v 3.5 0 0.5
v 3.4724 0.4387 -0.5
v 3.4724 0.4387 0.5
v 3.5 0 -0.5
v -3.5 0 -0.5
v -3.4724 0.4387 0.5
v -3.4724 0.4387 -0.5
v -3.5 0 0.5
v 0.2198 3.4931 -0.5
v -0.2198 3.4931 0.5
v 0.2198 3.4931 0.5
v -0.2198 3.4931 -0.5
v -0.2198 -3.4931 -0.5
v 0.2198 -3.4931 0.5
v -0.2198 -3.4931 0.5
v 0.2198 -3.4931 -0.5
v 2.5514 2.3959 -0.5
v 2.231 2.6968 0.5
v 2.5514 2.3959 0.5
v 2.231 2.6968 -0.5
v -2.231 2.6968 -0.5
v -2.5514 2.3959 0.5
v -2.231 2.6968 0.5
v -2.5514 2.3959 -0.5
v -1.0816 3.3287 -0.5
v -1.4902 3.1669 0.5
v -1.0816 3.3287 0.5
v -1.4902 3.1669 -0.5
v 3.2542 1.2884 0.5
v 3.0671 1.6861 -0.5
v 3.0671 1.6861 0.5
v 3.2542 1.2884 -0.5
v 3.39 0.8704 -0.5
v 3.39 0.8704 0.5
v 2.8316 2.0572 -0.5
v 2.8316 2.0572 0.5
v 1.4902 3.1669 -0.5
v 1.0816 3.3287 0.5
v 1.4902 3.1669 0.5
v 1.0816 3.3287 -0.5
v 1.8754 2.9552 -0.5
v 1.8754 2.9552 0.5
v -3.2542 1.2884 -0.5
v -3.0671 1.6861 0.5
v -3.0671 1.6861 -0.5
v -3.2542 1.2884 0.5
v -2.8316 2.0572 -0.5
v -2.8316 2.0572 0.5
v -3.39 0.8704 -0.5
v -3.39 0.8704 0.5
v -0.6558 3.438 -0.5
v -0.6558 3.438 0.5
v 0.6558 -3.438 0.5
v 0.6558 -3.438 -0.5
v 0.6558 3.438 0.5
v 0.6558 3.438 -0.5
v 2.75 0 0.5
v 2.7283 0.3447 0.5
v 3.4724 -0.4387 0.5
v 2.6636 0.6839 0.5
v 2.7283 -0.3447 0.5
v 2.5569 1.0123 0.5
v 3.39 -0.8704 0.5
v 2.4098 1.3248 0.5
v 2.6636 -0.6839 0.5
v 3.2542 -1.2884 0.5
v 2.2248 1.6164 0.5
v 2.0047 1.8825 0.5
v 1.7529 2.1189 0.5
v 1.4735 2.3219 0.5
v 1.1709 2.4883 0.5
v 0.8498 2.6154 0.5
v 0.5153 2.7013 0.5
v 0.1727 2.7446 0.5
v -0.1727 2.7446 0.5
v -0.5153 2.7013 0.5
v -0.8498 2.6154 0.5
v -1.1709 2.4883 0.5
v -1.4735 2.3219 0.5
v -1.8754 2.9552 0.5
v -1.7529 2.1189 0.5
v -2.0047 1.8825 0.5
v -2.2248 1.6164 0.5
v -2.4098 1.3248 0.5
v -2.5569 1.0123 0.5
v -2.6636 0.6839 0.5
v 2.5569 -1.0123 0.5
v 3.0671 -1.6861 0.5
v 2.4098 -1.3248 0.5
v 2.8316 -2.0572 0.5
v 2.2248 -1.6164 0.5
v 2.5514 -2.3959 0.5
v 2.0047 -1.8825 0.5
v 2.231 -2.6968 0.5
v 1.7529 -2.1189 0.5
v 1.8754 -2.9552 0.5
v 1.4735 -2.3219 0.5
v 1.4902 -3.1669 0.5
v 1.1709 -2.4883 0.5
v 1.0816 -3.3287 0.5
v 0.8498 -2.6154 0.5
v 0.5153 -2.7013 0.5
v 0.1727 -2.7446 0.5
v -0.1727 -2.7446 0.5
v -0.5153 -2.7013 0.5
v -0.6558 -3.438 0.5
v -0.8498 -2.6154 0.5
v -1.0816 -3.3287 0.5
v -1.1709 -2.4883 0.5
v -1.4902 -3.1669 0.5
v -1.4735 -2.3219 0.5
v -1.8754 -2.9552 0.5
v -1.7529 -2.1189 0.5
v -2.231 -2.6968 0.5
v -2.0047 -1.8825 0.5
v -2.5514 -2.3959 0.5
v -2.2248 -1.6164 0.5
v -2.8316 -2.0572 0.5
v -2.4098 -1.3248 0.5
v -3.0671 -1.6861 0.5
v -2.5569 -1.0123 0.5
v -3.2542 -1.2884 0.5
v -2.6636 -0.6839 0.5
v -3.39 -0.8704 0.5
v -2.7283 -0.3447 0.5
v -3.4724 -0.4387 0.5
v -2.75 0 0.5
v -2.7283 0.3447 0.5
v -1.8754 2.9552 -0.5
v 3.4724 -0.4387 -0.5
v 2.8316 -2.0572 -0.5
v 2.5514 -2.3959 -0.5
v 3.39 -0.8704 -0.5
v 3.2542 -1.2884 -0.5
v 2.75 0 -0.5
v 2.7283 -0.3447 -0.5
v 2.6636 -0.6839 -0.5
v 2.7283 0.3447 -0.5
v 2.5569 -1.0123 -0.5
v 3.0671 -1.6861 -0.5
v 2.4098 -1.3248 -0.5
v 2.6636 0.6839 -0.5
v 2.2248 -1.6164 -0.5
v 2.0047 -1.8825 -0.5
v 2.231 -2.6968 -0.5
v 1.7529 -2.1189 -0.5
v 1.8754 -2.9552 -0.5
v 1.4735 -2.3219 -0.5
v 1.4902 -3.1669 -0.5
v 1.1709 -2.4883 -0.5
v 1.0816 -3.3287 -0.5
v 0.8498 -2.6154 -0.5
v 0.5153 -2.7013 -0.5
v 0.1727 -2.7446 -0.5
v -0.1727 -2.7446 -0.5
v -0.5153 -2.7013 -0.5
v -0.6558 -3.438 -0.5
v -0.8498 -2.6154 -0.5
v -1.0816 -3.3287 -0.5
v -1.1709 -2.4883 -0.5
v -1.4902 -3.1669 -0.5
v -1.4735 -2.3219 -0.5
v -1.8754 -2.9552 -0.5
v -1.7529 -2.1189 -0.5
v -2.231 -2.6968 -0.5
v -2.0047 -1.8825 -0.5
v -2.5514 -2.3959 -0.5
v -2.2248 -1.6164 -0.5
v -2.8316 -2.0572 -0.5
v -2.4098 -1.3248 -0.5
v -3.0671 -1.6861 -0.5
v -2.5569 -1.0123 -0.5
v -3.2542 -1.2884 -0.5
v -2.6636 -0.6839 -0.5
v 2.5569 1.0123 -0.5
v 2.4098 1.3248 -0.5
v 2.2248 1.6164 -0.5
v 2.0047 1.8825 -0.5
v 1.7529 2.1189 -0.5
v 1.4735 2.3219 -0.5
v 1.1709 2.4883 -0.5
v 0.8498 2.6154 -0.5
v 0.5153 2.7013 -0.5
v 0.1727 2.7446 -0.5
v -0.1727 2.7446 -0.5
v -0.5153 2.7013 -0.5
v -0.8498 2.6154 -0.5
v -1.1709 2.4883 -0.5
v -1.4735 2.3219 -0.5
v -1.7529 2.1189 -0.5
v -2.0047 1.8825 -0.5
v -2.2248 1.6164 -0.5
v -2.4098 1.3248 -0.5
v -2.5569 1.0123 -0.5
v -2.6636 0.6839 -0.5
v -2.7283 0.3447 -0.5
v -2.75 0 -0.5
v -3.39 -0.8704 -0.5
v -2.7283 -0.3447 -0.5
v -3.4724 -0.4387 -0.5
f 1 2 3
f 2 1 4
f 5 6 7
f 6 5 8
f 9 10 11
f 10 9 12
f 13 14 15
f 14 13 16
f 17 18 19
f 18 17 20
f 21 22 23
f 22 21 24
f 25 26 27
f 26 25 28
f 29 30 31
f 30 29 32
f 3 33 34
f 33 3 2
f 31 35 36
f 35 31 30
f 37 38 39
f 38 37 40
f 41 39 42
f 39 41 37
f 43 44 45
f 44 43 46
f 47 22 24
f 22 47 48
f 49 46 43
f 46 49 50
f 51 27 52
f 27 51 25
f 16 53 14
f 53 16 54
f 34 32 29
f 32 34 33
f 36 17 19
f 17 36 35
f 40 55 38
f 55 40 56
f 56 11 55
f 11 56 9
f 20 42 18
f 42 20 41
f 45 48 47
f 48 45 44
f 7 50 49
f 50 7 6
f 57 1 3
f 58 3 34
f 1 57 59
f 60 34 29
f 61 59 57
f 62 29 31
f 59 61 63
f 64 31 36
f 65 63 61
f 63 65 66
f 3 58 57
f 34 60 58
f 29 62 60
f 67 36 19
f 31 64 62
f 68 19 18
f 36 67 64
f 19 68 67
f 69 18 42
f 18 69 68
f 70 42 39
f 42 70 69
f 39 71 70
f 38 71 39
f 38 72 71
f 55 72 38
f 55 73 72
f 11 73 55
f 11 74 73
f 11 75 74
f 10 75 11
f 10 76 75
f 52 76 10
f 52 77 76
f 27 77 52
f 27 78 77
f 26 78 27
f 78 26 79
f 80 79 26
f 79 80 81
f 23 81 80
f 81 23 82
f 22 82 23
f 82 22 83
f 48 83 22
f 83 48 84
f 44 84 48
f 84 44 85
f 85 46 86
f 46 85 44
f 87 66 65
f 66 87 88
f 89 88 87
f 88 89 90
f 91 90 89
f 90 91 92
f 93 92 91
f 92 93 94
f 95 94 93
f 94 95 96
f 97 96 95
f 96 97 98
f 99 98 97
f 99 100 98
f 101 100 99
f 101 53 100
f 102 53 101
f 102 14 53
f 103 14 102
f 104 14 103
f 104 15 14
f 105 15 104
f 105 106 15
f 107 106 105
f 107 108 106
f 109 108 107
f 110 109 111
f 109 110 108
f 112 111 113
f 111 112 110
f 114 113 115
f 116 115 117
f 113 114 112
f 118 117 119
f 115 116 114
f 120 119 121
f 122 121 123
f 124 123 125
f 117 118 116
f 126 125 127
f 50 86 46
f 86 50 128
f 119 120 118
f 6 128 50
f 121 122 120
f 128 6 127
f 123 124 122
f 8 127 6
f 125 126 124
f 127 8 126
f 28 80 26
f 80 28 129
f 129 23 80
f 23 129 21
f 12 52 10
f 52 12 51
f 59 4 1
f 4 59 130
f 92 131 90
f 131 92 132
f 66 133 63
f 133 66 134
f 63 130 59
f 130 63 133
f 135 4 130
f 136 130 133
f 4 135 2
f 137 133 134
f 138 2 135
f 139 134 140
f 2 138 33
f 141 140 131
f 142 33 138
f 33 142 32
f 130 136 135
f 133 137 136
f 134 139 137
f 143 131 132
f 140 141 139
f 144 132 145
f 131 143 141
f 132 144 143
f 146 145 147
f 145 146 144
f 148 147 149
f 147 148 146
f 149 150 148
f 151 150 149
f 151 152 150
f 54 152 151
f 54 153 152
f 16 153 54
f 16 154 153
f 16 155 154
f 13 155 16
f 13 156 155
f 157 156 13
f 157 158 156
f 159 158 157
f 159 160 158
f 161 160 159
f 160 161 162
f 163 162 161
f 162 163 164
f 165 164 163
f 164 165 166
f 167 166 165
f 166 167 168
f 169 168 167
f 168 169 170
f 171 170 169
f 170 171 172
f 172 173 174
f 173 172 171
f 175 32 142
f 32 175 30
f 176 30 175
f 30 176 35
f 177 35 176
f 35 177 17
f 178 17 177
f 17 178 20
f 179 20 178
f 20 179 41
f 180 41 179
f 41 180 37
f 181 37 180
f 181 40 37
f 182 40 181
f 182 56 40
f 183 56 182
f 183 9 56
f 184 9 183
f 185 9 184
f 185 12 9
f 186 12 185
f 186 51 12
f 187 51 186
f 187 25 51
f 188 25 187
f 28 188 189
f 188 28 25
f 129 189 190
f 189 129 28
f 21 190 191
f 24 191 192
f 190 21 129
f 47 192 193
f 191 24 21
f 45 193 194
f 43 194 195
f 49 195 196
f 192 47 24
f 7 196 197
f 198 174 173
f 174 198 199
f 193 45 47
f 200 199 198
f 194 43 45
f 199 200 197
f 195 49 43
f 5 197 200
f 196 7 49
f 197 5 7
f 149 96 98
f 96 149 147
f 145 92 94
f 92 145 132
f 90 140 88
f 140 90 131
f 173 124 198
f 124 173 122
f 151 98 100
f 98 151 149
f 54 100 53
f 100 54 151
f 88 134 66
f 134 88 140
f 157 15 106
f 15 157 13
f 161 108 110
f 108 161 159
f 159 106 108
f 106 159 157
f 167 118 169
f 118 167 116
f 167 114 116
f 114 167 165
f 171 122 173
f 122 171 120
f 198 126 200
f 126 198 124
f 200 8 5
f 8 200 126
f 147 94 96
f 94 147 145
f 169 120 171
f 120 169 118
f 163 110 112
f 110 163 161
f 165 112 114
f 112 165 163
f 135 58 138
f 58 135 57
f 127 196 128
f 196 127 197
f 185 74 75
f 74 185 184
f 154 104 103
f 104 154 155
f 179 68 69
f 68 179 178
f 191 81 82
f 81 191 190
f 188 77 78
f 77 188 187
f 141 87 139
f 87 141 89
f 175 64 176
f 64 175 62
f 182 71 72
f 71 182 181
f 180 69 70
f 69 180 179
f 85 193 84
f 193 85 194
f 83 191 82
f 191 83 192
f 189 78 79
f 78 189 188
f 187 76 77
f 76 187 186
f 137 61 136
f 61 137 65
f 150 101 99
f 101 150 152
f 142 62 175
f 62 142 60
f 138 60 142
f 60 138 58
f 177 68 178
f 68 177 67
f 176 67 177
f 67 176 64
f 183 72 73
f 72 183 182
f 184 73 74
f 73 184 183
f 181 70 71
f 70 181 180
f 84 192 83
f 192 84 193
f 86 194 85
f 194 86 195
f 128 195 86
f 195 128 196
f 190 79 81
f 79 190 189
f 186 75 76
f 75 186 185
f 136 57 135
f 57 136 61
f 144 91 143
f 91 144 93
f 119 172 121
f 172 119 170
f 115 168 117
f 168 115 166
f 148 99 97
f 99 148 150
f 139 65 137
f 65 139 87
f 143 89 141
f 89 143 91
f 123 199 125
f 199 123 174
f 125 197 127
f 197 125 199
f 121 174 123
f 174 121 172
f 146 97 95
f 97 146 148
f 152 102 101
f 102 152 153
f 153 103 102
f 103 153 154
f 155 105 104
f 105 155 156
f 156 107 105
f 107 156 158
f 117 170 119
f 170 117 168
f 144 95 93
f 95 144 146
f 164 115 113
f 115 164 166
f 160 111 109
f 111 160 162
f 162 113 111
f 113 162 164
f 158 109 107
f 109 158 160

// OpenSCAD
$fn = 50;


difference() {
	union() {
		translate(v = [0, 0, -0.5000000000]) {
			cylinder(h = 1, r = 3.5000000000);
		}
	}
	union() {
		translate(v = [0, 0, -100.0000000000]) {
			cylinder(h = 200, r = 2.7500000000);
		}
	}
}
